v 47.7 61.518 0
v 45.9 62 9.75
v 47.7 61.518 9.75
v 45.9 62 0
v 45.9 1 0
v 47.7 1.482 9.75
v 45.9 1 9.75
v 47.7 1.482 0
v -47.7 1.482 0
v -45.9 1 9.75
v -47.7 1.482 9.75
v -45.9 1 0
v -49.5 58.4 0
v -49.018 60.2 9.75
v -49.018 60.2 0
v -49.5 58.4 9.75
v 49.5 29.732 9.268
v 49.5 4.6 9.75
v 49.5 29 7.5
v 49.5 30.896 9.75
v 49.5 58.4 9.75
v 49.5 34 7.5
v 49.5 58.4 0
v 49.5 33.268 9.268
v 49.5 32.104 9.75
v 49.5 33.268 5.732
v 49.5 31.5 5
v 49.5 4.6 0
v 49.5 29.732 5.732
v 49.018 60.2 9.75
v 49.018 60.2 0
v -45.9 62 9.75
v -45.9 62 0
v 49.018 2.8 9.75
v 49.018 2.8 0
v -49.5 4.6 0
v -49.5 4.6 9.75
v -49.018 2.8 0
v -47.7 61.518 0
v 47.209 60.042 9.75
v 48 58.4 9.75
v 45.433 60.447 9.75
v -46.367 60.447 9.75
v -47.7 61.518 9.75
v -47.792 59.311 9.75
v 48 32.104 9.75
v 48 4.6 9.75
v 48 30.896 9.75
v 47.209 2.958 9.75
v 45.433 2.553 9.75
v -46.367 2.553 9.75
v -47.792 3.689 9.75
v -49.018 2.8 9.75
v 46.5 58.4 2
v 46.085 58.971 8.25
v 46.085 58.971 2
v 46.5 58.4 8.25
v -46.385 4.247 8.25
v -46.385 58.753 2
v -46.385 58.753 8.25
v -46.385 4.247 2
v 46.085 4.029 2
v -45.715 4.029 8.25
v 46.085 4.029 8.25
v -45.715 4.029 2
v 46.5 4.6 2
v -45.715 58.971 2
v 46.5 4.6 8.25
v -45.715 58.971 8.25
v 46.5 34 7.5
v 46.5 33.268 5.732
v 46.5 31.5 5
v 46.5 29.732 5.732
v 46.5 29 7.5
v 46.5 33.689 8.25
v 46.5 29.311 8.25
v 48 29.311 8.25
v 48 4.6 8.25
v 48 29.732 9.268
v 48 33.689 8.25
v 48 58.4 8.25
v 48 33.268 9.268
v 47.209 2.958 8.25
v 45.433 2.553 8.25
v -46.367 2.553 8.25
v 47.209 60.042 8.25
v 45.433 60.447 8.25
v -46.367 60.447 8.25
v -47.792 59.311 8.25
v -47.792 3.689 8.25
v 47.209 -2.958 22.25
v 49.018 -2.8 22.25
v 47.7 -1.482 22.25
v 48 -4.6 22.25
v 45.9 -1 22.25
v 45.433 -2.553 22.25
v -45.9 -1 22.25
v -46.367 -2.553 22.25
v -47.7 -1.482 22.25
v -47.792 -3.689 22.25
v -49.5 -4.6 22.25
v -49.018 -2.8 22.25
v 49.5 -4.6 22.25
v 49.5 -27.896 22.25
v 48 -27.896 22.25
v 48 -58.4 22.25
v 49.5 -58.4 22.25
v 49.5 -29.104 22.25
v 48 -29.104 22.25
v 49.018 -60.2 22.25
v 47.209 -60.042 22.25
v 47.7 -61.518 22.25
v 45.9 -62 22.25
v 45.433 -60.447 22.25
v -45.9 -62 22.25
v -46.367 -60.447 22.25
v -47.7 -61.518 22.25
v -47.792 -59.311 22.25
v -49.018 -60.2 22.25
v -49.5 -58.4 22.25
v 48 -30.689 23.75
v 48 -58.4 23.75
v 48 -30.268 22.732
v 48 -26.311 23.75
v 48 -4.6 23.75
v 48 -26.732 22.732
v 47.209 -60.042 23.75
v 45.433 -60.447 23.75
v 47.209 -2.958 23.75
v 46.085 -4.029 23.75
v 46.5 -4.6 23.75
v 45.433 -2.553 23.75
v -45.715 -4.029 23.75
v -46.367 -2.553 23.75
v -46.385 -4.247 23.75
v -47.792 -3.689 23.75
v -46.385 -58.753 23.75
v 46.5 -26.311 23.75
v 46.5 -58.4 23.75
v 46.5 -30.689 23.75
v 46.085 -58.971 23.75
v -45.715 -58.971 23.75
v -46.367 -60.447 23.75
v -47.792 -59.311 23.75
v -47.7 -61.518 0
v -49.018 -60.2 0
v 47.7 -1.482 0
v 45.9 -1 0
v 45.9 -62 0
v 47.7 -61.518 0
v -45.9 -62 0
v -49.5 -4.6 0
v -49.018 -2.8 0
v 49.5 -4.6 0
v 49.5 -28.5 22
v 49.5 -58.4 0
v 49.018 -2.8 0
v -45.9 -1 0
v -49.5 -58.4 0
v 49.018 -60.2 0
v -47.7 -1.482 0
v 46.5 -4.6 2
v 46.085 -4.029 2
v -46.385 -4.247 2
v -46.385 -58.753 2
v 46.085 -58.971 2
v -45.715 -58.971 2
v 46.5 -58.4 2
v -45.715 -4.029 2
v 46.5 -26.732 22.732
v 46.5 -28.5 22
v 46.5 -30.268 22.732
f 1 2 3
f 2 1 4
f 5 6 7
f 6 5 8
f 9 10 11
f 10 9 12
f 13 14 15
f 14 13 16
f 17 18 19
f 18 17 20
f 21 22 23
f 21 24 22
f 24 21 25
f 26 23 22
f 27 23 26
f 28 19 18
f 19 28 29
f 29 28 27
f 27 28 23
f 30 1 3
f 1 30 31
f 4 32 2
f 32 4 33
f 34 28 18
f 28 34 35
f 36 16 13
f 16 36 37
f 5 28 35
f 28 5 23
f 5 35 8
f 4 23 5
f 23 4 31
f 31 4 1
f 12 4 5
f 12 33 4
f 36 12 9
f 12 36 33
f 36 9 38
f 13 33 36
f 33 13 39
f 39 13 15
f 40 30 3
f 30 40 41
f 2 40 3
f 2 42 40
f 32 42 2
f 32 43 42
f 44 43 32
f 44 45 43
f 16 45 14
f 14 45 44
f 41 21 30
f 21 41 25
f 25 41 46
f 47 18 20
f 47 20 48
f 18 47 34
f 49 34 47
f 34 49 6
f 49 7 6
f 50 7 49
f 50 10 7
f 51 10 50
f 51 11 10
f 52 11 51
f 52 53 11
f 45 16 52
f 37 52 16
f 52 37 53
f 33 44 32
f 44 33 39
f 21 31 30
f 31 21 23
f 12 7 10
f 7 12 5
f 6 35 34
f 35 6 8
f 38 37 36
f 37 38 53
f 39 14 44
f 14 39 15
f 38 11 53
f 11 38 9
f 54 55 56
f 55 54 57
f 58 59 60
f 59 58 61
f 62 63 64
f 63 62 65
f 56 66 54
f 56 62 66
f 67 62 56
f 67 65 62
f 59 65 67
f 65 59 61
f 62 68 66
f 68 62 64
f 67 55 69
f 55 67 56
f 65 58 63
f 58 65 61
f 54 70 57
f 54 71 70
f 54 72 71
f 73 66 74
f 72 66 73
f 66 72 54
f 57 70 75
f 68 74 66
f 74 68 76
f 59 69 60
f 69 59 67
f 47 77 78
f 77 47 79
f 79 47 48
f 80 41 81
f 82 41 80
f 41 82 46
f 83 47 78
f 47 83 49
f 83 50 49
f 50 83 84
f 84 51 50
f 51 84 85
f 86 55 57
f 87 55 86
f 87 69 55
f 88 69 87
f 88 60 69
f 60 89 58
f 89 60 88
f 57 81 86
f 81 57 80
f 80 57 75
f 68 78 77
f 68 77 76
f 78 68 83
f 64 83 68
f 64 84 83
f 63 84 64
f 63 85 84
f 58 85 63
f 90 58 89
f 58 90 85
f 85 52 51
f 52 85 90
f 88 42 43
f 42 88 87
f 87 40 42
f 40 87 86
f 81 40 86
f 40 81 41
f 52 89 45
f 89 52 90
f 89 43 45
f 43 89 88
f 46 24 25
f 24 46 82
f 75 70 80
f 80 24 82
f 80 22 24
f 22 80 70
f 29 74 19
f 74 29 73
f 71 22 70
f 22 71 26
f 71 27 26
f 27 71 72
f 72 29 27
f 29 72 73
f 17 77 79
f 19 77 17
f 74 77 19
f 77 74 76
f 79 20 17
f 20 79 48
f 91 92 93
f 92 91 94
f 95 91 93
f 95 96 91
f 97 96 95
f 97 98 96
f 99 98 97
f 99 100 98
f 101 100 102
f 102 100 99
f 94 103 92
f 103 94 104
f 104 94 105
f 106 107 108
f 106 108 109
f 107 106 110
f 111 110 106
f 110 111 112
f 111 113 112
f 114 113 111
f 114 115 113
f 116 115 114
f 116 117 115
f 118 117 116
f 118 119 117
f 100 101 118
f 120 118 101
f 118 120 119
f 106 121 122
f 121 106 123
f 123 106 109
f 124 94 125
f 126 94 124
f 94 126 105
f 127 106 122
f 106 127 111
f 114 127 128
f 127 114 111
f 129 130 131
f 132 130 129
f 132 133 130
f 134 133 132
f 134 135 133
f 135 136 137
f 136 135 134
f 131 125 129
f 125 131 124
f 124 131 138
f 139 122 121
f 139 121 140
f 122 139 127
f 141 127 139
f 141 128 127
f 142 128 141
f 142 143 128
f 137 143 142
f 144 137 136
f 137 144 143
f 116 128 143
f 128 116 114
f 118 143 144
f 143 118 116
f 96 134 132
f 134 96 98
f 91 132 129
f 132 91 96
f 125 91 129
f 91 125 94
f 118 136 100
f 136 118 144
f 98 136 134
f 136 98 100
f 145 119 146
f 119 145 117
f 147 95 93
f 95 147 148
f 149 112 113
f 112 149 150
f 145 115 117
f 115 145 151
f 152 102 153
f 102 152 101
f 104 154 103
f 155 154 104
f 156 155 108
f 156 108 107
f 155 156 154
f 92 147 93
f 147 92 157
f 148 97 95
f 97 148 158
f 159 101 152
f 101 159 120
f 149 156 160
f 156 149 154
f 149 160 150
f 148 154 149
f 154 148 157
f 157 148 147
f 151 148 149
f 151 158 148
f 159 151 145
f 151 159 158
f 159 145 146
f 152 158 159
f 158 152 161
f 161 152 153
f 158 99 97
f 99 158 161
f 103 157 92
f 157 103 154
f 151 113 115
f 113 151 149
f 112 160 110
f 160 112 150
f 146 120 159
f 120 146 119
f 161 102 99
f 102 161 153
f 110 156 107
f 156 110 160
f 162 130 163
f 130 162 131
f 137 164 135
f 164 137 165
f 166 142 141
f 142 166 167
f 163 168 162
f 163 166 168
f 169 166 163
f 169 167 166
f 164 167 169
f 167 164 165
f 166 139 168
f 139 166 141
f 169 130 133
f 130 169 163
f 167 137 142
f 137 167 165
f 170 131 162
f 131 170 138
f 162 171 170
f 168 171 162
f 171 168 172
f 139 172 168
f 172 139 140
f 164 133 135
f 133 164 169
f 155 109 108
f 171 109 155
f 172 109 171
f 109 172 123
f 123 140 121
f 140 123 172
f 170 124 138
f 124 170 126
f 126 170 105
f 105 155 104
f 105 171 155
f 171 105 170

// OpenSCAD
/*!
@brief Generic Electronic Device packaging for Tyndall
@details This OpenSCAD script will generate a 2 part fit together packaging.
This starts by making a pair of hollow rounded cuboids by differencing a slightly smaller one from a slightly larger one
then it will also remove another small amount of material to make a lip
one of the objects will have an internal lip the other one will have an external lip
you will be able to specify fit type
It can also create simple square or cylindrical cutouts on any face of the top or bottom half
4 cylindrical support posts can also be added on the bottom or top half to help position a PCB or similar device
all these features can be controlled from the variables section

@author Mark Gaffney
@version 1.6
@date 2012-05-29

@todo
enable for measurements from corners or centres of faces etc
add "fit factor" for cutouts
add option for connecting struts between top and bottom in side by side mode
re-incorporate some advanced features from v1.5

@warning
@note
Changes from previous versions:

v1.6
 - 	Incorporates improvements from brians physiological health board case v2.6
 - - 	better support for adding parts, changing features and changing layout using control variables
 - - 	Can select how tall the 2 halves are relative to each other
 - - 	Added method to choose whether to have fully cut or covered cutouts
 - -	Added optional mouse-ears
 - 	more logical method for creating circular and square cutouts in preparation for array based system
 - 	simplified method for controlling lip tolerance
 - 	abandoned some features from v1.5 such as profiled lips in quest for simplicity
 - 	method optionally adding posts to top and bottom
 - 	variables for controlling support posts on top and bottom separately
 - 	pasted contents of mouse ears and rounded cuboid as modules rather than accessing them as external files

v1.5
	adjusted a few values after receiving SLA proto-types
	increased height of posts
	added support structures on top side
	decrease diameter of support structures on top side slightly to allow for brackets at end of 40 way
	decreased z clearance
	removed includes/uses needed for WIMU packaging
	
v1.4
	added angled lip (Cube_cone_cylinder_minkowski sum) for better mating of top and bottom parts when made via SLA/SLS etc
	new more simplistic rounded cuboid module
	moved around the cutout for the uUSB so that there wasn't such a thin peice of plastic above it
changed post type to nub as SLA should be able to handle the resolution
	added easier control of orientation of parts relative to each other using single variable side_by_side
	added axis labels to most faces and tyndall logo to bottom
	added new fit type for super accurate manufacturing techniques such as SLA
v1.3
	Fix cutout positions for TOP SQUARE East and BOTTOM SQUARE West side
	Fix position of base of support posts on bottom half
v1.2
	Fixed Inner and Outer Lip Clearance implementation
	Added ability to generate support posts on bottom half of either nub or screw hole type
v1.1
	???This version was lost in a computer crash. GRRRR!
	???It implemented the ability to choose the reference point for measurements for each side
	???Let this be a lesson!
	???Back your stuff up regularly and on separate devices!
v 1.0
	Ensure pcb_clearance and fit clearance is taken into account
	fit type values changed
		force_fit from 0.4 to 0.2
		hold_fit from 0.6 to 0.3
		slide_fit from 0.8 to 0.4
		free_fit from 1to 0.5
	add cylinder & square holes to all faces
	allowed to stack or see side by side
	replace 0.1s with a_bit
	check holes on top & bottom sides meet properly
*/

//*********includes********

//use <mouse_ears_test.scad>;//mouse_ears (total_x, total_y, 2*z_resolution, mouse_ear_diameter);
//use <rounded_cuboid_v2.5.scad>;//rounded_cuboid_2_5(tot_l, tot_b, tot_h, tot_r, tot_s,center=true/false,use_sphere,top_n_bottom); hollow_rounded_cuboid_2_5(tot_l, tot_b, tot_h, tot_r, tot_s, wall_t,center=true/false,use_sphere,top_n_bottom);

//*************Control*Variables****************

has_mouse_ears=0;
has_bottom=1;
has_top=1;
has_posts=0;
posts_on_top=1;
posts_on_bottom=0;
is_side_by_side=1;
has_device=0;// for optionally showing an imported model of the internal device, not used here
device_on_top=0;
//has_switch=0; //for optionally showing an imported part, not used here
//simple_lip=0;//for choosing if a simple (1) or locking type lip (0) is used between the 2 halves, not used yet

//***********Pre*Defined*Variables**************

z_resolution=0.32;//this is how thick your printed layers are
xy_resolution=0.5;//how thick is an extruder filament in XY plane

//clearances for the interlocking lips on 3d printed parts, these values will depend on the printer it is made on. Users should NOT change these
super_fit=0.0;//
force_fit=0.2; //!@param force_fit, this is the separation between surfaces that will give a tight fit
hold_fit=0.3; //this is the separation between surfaces that will give a fit that will hold itself together but be easy to remove
slide_fit=0.4; //this is the separation between surfaces that will give a free moving fit without much wobble
free_fit=0.5; //this is the separation between surfaces that will give a free moving & loose but easy to assemble fit

//fudge
a_bit=0.1; //This is used to move items, oversize or undersize them by small amount to maintain manifoldness of the generated 3d shape, this should be on the order of 10% of the smallest dimension you will plan to use 

//**************User*Variables*****************

//internal dimensions
int_l_holder=90;//max length of the item to be held internally
int_b_holder=52;//max breadth of the item to be held internally
int_h_holder=25;//max height of the item to be held internally
int_r_holder=0.5;//radius of the corners of the device to be held internally
int_tol_holder=1.5;//distance between internal walls and edges of the item to be held internally, this allows for devices that may not be accurately measured or made and should generally be >0.5mm
int_r_tol_holder=0.1;//tolerance for the internal corners
curve_f_holder=3;//how many facets do the curved corners have?
wall_t_holder=3;//how thick are the vertical walls?
base_t_holder=2;//how thick is the base?

//lip dimensions
lip_h=1.5;//how tall are the interlocking lips?
lip_fit=super_fit;//what is the tolerance for the fit between the two sets of interlocking lips?
lip_t= wall_t_holder/2-lip_fit;//automatically calculated lip thickness (width)

//external dimensions
ext_l_holder=int_l_holder+2*(int_tol_holder+wall_t_holder);
ext_b_holder=int_b_holder+2*(int_tol_holder+wall_t_holder);
ext_h_holder=int_h_holder+2*int_tol_holder+2*base_t_holder;
ext_r_holder=int_r_holder+int_r_tol_holder+wall_t_holder;
bottom_top_int_h_ratio=0.22;//how tall is the internal void of the bottom section relative to the top section (0.5 would give 2 halves of equal height)
bottom_h=(int_h_holder*bottom_top_int_h_ratio)+int_tol_holder+base_t_holder+lip_h/2;//how tall is the bottom half
top_h=ext_h_holder-bottom_h+lip_h;//how tall is the top half

//features
mouse_ear_diameter=12;
mouse_ear_thickness=2*z_resolution;
side_side_separation=2;//how far apart the two halves are if generated together


//cutout variables
cutout_wall_thickness=0*xy_resolution; //how thick is the plastic left in the cutouts on the sides? set to 0 if you do not want any plastic left in these cutouts
cutout_base_thickness=2*z_resolution;//how thick is the plastic left in the cutouts on the bottom or top? set to 0 if you do not want any plastic left in these cutouts

north_cutout=1;//if 1 cutout on this side else none
n_cutout_c=1;//if 1 gives circle just using the _r value and ignoring the others, else gives rounded square
n_cutout_l=10;//length/tallness of the cutout
n_cutout_b=22;//breadth of the cutout
n_cutout_h=wall_t_holder+2*a_bit;//basically wall thickness plus a bit
n_cutout_r=2.5;//radius of the corners of the cutout
n_cutout_e=4;//height of the bottom of the cutout above the bottom of the holder 
n_cutout_t=0;//translation along the face -left +right as you look at the face from outside

south_cutout=0;//if 1 cutout on this side else none
s_cutout_c=0;//if 1 gives circle just using the _r value and ignoring the others, else gives rounded square
s_cutout_l=8;//length/tallness of the cutout
s_cutout_b=11;//breadth of the cutout
s_cutout_h=wall_t_holder+2*a_bit;//basically wall thickness plus a bit
s_cutout_r=2;//radius of the corners of the cutout
s_cutout_e=s_cutout_l+(-int_h_holder -lip_h)/2-int_tol_holder -1;//height of the bottom of the cutout above the bottom of the holder 
s_cutout_t=-1;//translation along the face -left +right

south_cutout2=0;//if 1 cutout on this side else none
s_cutout_c2=0;//if 1 gives circle just using the _r value and ignoring the others, else gives rounded square
s_cutout_l2=7;//length/tallness of the cutout
s_cutout_b2=13;//breadth of the cutout
s_cutout_h2=wall_t_holder+2*a_bit;//basically wall thickness plus a bit
s_cutout_r2=1;//radius of the corners of the cutout
s_cutout_e2=0;//height of the bottom of the cutout above the bottom of the holder 
s_cutout_t2=0;//translation along the face -left +right

east_cutout=0;//ECG cutout
e_cutout_c=0;//if 1 gives circle just using the _r value and ignoring the others, else gives rounded square
e_cutout_l=9;//length/tallness of the cutout
e_cutout_b=13;//breadth of the cutout
e_cutout_h=wall_t_holder+2*a_bit;//basically wall thickness plus a bit
e_cutout_r=3;//radius of the corners of the cutout
e_cutout_e=2;//e_cutout_l+(-int_h_holder -lip_h)/2-int_tol_holder;//height of the bottom of the cutout above the bottom of the holder 
e_cutout_t=0;//(int_l_holder/2)-46.5-4;//translation along the face -left +right

west_cutout=0;//switch cutout
w_cutout_c=1;//if 1 gives circle just using the _r value and ignoring the others, else gives rounded square
w_cutout_l=10;//length/tallness of the cutout
w_cutout_b=10;//breadth of the cutout
w_cutout_h=wall_t_holder+2*a_bit;//basically wall thickness plus a bit
w_cutout_r=2;//radius of the corners of the cutout
w_cutout_e=5;//w_cutout_l+(-int_h_holder -lip_h)/2-int_tol_holder;//height of the bottom of the cutout above the bottom of the holder 
w_cutout_t=10;//translation along the face -left +right

top_cutout=0;//top cutout
t_cutout_c=1;//if 1 gives circle just using the _r value and ignoring the others, else gives rounded square
t_cutout_l=25;//length/tallness of the cutout
t_cutout_b=20;//breadth of the cutout
t_cutout_h=base_t_holder+2*a_bit;//basically wall thickness plus a bit
t_cutout_r=7;//radius of the corners of the cutout
t_cutout_x=20;//height of the bottom of the cutout above the bottom of the holder 
t_cutout_y=15;//translation along the face -left +right

bottom_cutout=0;//bottom cutout
b_cutout_c=1;//if 1 gives circle just using the _r value and ignoring the others, else gives rounded square
b_cutout_l=25;//length/tallness of the cutout
b_cutout_b=20;//breadth of the cutout
b_cutout_h=base_t_holder+2*a_bit;//basically wall thickness plus a bit
b_cutout_r=7;//radius of the corners of the cutout
b_cutout_x=20;//position of the cutout
b_cutout_y=15;//position of the cutout


//PCB Support Posts (if enabled, four cylindrical posts will be made with their centres on the corners of a user defined rectangle offset from the centroid by a user controlled amount
//cylindrical_posts (post_l,post_b,post_h_outer,post_r_outer,post_h_inner,post_r_inner,post_x_offset,post_y_offset,post_type)
//bottom
	b_post_outer_r=3;	//external radius of the post
	b_post_inner_r=1;	//radius of the nub (or screw hole)
	b_post_outer_h=4.3;	//height of the post
	b_post_inner_h=1.7;	//height (or depth) of the nub (or screw hole)
	b_post_type=1;	//if 1 gives a nub topped post, if 0 gives a screw hole post
	b_post_x_sep=60;	//X distance between post centres
	b_post_y_sep=40;	//Y distance between post centres
	b_post_x_offset=8;	//X distance between 4 post centroid and bottom face centroid
	b_post_y_offset=5;	//Y distance between 4 post centroid and bottom face centroid
//top
	t_post_outer_r=3;	//external radius of the post
	t_post_inner_r=1;	//radius of the nub (or screw hole)
	t_post_outer_h=6;	//height of the post
	t_post_inner_h=1.7;	//height (or depth) of the nub (or screw hole)
	t_post_type=0;	//if 1 gives a nub topped post, if 0 gives a screw hole post
	t_post_x_sep=60;	//X distance between post centres
	t_post_y_sep=30;	//Y distance between post centres
	t_post_x_offset=10;	//X distance between 4 post centroid and bottom face centroid
	t_post_y_offset=1;	//Y distance between 4 post centroid and bottom face centroid


//*********************Calls*******************

//holder calls
if (has_bottom==1 && has_mouse_ears==1){
	translate(v=[0,is_side_by_side*(ext_b_holder+side_side_separation)/2,0]) mouse_ears (ext_l_holder, ext_b_holder, mouse_ear_thickness, mouse_ear_diameter);
}


if (has_bottom==1){
	translate(v=[0,is_side_by_side*(ext_b_holder+side_side_separation)/2,0]) {

	//	if (has_switch==1){//an accessory model can be loaded here
	//		translate(v=[-18.8,ext_b_holder/2-wall_t_holder-a_bit-8,base_t_holder+0.5]) color("DarkSlateGrey") rotate(a=[90,0,180]) import("2012_05_14-Base_station_switch-v0.2-Brians-v2-6.stl");
	//	}
	
	//	if(has_device==1 && device_on_top==0){//a device resembling the electronics can be inserted here
	//		translate(v=[battery_cable_length-int_l_holder/2,-int_b_holder/2,base_t_holder+int_tol_holder])color([0,1,1,1])phys_health_layer(1, 1, 1, 1);
	//	}
	
		if(has_posts==1 && posts_on_bottom==1){
			translate(v=[0,0,base_t_holder-a_bit]) cylindrical_posts (b_post_x_sep,b_post_y_sep,b_post_outer_h+b_post_inner_h,b_post_outer_r,b_post_inner_h,b_post_inner_r,b_post_x_offset,b_post_y_offset,b_post_type); //cylindrical_posts (post_l,post_b,post_h_outer,post_r_outer,post_h_inner,post_r_inner,post_x_offset,post_y_offset,post_type)
		}

		difference(){//make internal hollow cuboid
			translate(v=[0,0,0]) rounded_cuboid_2_5(ext_l_holder,ext_b_holder,int_h_holder*bottom_top_int_h_ratio+int_tol_holder+base_t_holder+lip_h/2,ext_r_holder,curve_f_holder,true);
			translate(v=[0,0,base_t_holder]) rounded_cuboid_2_5(ext_l_holder-2*wall_t_holder,ext_b_holder-2*wall_t_holder,ext_h_holder,ext_r_holder-wall_t_holder,curve_f_holder,true);
			translate(v=[0,0,int_h_holder*bottom_top_int_h_ratio+int_tol_holder+base_t_holder-lip_h/2]) rounded_cuboid_2_5(ext_l_holder-2*lip_t,ext_b_holder-2*lip_t,ext_h_holder,ext_r_holder-wall_t_holder/2,curve_f_holder,true);//cutout to make the lips
			translate(v=[0,0,ext_h_holder/2]){
				if(north_cutout==1){
					if(n_cutout_c==1){
						#translate(v=[-cutout_wall_thickness+ext_l_holder/2,n_cutout_t,n_cutout_e-int_h_holder/2]) rotate(a=[0,-90,0]) cylinder (r=n_cutout_r,h=n_cutout_h,center=false); //circular cutout on "North" end	
					}else{
						#translate(v=[-cutout_wall_thickness+ext_l_holder/2,n_cutout_t,n_cutout_e-int_h_holder/2]) rotate(a=[0,-90,0]) rounded_cuboid_2_5 (n_cutout_l,n_cutout_b,n_cutout_h,n_cutout_r,curve_f_holder,center=true); //square cutout on "North" end	
					}
				}if(south_cutout==1){
					if(s_cutout_c==1){
						translate(v=[cutout_wall_thickness-a_bit-ext_l_holder/2,-s_cutout_t,s_cutout_e-int_h_holder/2]) rotate(a=[0,90,0]) cylinder (r=s_cutout_r,h=s_cutout_h,center=false); //circular cutout on "South" end	
					}else{
						#translate(v=[cutout_wall_thickness-a_bit-ext_l_holder/2,-s_cutout_t,s_cutout_e+base_t_holder-s_cutout_l/2]) rotate(a=[0,90,0])rounded_cuboid_2_5 (s_cutout_l,s_cutout_b,s_cutout_h,s_cutout_r,curve_f_holder,center=true); //mUSB cutout on "south" end
					}
				}if(south_cutout2==1){
					if(s_cutout_c2==1){
						#	translate(v=[cutout_wall_thickness-a_bit-ext_l_holder/2,-s_cutout_t2,s_cutout_e2-int_h_holder/2]) rotate(a=[0,90,0]) cylinder (r=s_cutout_r2,h=s_cutout_h2,center=false); //circular cutout on "South" end	
					}else{
						translate(v=[cutout_wall_thickness-a_bit-ext_l_holder/2,-s_cutout_t2,s_cutout_e2+base_t_holder-s_cutout_l2/2]) rotate(a=[0,90,0])rounded_cuboid_2_5 (s_cutout_l2,s_cutout_b2,s_cutout_h2,s_cutout_r2,curve_f_holder,center=true); //uSD cutout on "south" end
					}
				}if(east_cutout==1){
					if(e_cutout_c==1){
						#rotate(a=[0,0,90]) translate(v=[cutout_wall_thickness-a_bit-ext_b_holder/2,-e_cutout_t,e_cutout_e-int_h_holder/2]) rotate(a=[0,90,0]) cylinder (r=e_cutout_r,h=e_cutout_h,center=false); //circular cutout on "East" end	
					}else{
						rotate(a=[0,0,90])translate(v=[cutout_wall_thickness-a_bit-ext_b_holder/2,-e_cutout_t,e_cutout_e+base_t_holder-e_cutout_l/2]) rotate(a=[0,90,0])rounded_cuboid_2_5 (e_cutout_l,e_cutout_b,e_cutout_h,e_cutout_r,curve_f_holder,center=true); //ECG cutout on "East" end
					}
				}if(west_cutout==1){
					if(w_cutout_c==1){
						#rotate(a=[0,0,-90]) translate(v=[cutout_wall_thickness-a_bit-ext_b_holder/2,-w_cutout_t,w_cutout_e-int_h_holder/2]) rotate(a=[0,90,0]) cylinder (r=w_cutout_r,h=w_cutout_h,center=false); //circular cutout on "West" end	
					}else{
						rotate(a=[0,0,-90])translate(v=[cutout_wall_thickness-a_bit-ext_b_holder/2,-w_cutout_t,w_cutout_e+base_t_holder-w_cutout_l/2]) rotate(a=[0,90,0])rounded_cuboid_2_5 (w_cutout_l,w_cutout_b,w_cutout_h,w_cutout_r,curve_f_holder,center=true); //switch cutout on "West" end
					}
				}if(bottom_cutout==1){
					if(b_cutout_c==1){
						#translate(v=[b_cutout_x,b_cutout_y,-ext_h_holder/2+cutout_base_thickness]) cylinder (r=b_cutout_r,h=b_cutout_h,center=false); //circular cutout on "Bottom" end	
					}else{
					#	translate(v=[b_cutout_x,b_cutout_y,-ext_h_holder/2+cutout_base_thickness]) rotate(a=[0,0,0])rounded_cuboid_2_5 (b_cutout_l,b_cutout_b,b_cutout_h,b_cutout_r,curve_f_holder,center=true); //switch cutout on "Bottom" end
					}
				}
			}
		}
	}
}

if (has_top==1){
	rotate(a=[0,(is_side_by_side-1)*180,(is_side_by_side-1)*180]) translate(v=[0,-is_side_by_side*(ext_b_holder+side_side_separation)/2,-(abs(is_side_by_side-1))*ext_h_holder  +(abs(has_top-1))*ext_h_holder ]){

	if(has_device==1 && device_on_top==1){	translate(v=[battery_cable_length-int_l_holder/2,int_b_holder/2,cube_height_top+int_tol_holder+a_bit])color([0,1,1,1])rotate(a=[180,0,]) phys_health_layer(1, 1, 1, 1);
	}

		if (has_mouse_ears==1 && is_side_by_side==1){
			mouse_ears (ext_l_holder, ext_b_holder, mouse_ear_thickness, mouse_ear_diameter);
		}

		if(has_posts==1 && posts_on_top==1){
			translate(v=[0,0,base_t_holder-a_bit]) cylindrical_posts (t_post_x_sep,t_post_y_sep,t_post_outer_h+t_post_inner_h,t_post_outer_r,t_post_inner_h,t_post_inner_r,t_post_x_offset,t_post_y_offset,t_post_type); //cylindrical_posts (post_l,post_b,post_h_outer,post_r_outer,post_h_inner,post_r_inner,post_x_offset,post_y_offset,post_type)
		}


		difference(){//make internal hollow cuboid
			translate(v=[0,0,0]) rounded_cuboid_2_5(ext_l_holder,ext_b_holder,top_h,ext_r_holder,curve_f_holder,true);
			translate(v=[0,0,base_t_holder]) rounded_cuboid_2_5(ext_l_holder-2*wall_t_holder,ext_b_holder-2*wall_t_holder,ext_h_holder,ext_r_holder-wall_t_holder,curve_f_holder,true);
			difference(){
				translate(v=[0,0,top_h-lip_h+100/2]) cube(size=[ext_l_holder+2,ext_b_holder+2,100],center=true);
				translate(v=[0,0,0]) rounded_cuboid_2_5(ext_l_holder-2*wall_t_holder+2*lip_t,ext_b_holder-2*wall_t_holder+2*lip_t,top_h,ext_r_holder-wall_t_holder/2,curve_f_holder,true);//lips
			}
			translate(v=[0,0,ext_h_holder/2]) rotate(a=[180,0,0]){
				 if(north_cutout==1){
					if(n_cutout_c==1){
					#	translate(v=[+cutout_wall_thickness+ext_l_holder/2,n_cutout_t-wall_t_holder,n_cutout_e-int_h_holder/2]) rotate(a=[0,-90,0]) cylinder (r=n_cutout_r,h=n_cutout_h,center=false); //circular cutout on "North" end	
					}else{
					#	translate(v=[+cutout_wall_thickness+ext_l_holder/2-wall_t_holder,n_cutout_t,n_cutout_e-int_h_holder/2]) rotate(a=[0,90,0])rounded_cuboid_2_5 (n_cutout_l,n_cutout_b,n_cutout_h,n_cutout_r,curve_f_holder,center=true); //uUSB cutout on "North" end
					}
				}if(south_cutout==1){
					if(s_cutout_c==1){
					#	rotate(a=[0,0,180]) translate(v=[+cutout_wall_thickness+ext_l_holder/2,s_cutout_t,s_cutout_e-int_h_holder/2]) rotate(a=[0,-90,0]) cylinder (r=s_cutout_r,h=s_cutout_h,center=false); //circular cutout on "South" end	
					}else{
			 	#		translate(v=[-ext_l_holder/2+wall_t_holder-cutout_wall_thickness-wall_t_holder,-s_cutout_t,s_cutout_e+base_t_holder-s_cutout_l/2]) rotate(a=[0,90,0])rounded_cuboid_2_5 (s_cutout_l,s_cutout_b,s_cutout_h,s_cutout_r,curve_f_holder,center=true); //uUSB cutout on "south" end
					}
				}if(south_cutout2==1){
					if(s_cutout_c2==1){
					#	rotate(a=[0,0,180]) translate(v=[+cutout_wall_thickness+ext_l_holder/2,s_cutout_t2,s_cutout_e2-int_h_holder/2]) rotate(a=[0,-90,0]) cylinder (r=s_cutout_r2,h=s_cutout_h2,center=false); //circular cutout on "South" end	
					}else{
					#	translate(v=[-ext_l_holder/2+wall_t_holder-cutout_wall_thickness-wall_t_holder,-s_cutout_t2,s_cutout_e2+base_t_holder-s_cutout_l2/2]) rotate(a=[0,90,0])rounded_cuboid_2_5 (s_cutout_l2,s_cutout_b2,s_cutout_h2,s_cutout_r2,curve_f_holder,center=true); //uSD cutout on "south" end
					}
				}if(east_cutout==1){
					if(e_cutout_c==1){
					#	rotate(a=[0,0,-90]) translate(v=[+cutout_wall_thickness+ext_b_holder/2,e_cutout_t,e_cutout_e-int_h_holder/2]) rotate(a=[0,-90,0]) cylinder (r=e_cutout_r,h=e_cutout_h,center=false); //circular cutout on "East" end	
					}else{
					#	rotate(a=[0,0,90])translate(v=[-ext_b_holder/2+wall_t_holder-cutout_wall_thickness,-e_cutout_t,e_cutout_e+base_t_holder-e_cutout_l/2]) rotate(a=[0,90,180])rounded_cuboid_2_5 (e_cutout_l,e_cutout_b,e_cutout_h,e_cutout_r,curve_f_holder,center=true); //uUSB cutout on "East" end
					}
				}if(west_cutout==1){
					if(w_cutout_c==1){
					#	rotate(a=[0,0,90]) translate(v=[+cutout_wall_thickness+ext_b_holder/2,w_cutout_t,w_cutout_e-int_h_holder/2]) rotate(a=[0,-90,0]) cylinder (r=w_cutout_r,h=w_cutout_h,center=false); //circular cutout on "West" end	
					}else{
						#rotate(a=[0,0,-90])translate(v=[-ext_b_holder/2+wall_t_holder-cutout_wall_thickness,-w_cutout_t,w_cutout_e+base_t_holder-w_cutout_l/2]) rotate(a=[0,90,180])rounded_cuboid_2_5 (w_cutout_l,w_cutout_b,w_cutout_h,w_cutout_r,curve_f_holder,center=true); //uUSB cutout on "West" end
					}
				}if(top_cutout==1){
					if(t_cutout_c==1){
						#mirror (v=[0,0,1]) translate(v=[t_cutout_x,t_cutout_y,-ext_h_holder/2+cutout_base_thickness]) cylinder (r=t_cutout_r,h=t_cutout_h,center=false); //circular cutout on "Top" end	
					}else{
						#rotate(a=[0,0,0])translate(v=[t_cutout_x,t_cutout_y,ext_h_holder/2-cutout_base_thickness]) rotate(a=[0,180,0])rounded_cuboid_2_5 (t_cutout_l,t_cutout_b,t_cutout_h,t_cutout_r,curve_f_holder,center=true); //uUSB cutout on "Top" end
					}
				}
			}
		}
	}
}



//*********************Modules*******************

module cylindrical_posts (post_l,post_b,post_h_outer,post_r_outer,post_h_inner,post_r_inner,post_x_offset,post_y_offset,post_type){
	//make 4 cylindrical support posts
	//place cylinders post_h_outer tall with radius post_r_outer at each vertex of rectangle defined by post_l & post_b
	//add (1) or subtract (0) depending on post_type cylinders post_h_inner tall with radius post_r_inner at (1) or from (0) cylinders
	//translate this shape by post_x_offset post_y_offset
	//I might need to add a_bit to this in various places for manifoldness

	for ( holder_x = [-(post_l/2), (post_l/2)]) {
		for ( holder_y = [-(post_b/2), (post_b/2)]) {
			if (post_type==0){ //a screw hole type post
				difference(){
					translate (v=[holder_x+post_x_offset, holder_y+post_y_offset,0]) cylinder(h = post_h_outer+a_bit, r = post_r_outer, center=false);//main body of post
					translate (v=[holder_x+post_x_offset, holder_y+post_y_offset, (post_h_outer-post_h_inner)+a_bit]) cylinder(h = post_h_inner+a_bit, r = post_r_inner, center=false);//screw hole of post
				}
			}

			else{//(post_type==1){ //a nub type post
				union(){
					translate (v=[holder_x+post_x_offset, holder_y+post_y_offset,0]) cylinder(h = post_h_outer+a_bit, r = post_r_outer, center=false);//main body of post
					translate (v=[holder_x+post_x_offset, holder_y+post_y_offset, post_h_outer]) cylinder(h = post_h_inner, r = post_r_inner, center=false);//nub of post
				}
			}
		}
	}
}

module cube_cone_cylinder_minkowski(size_x,size_y,size_z,size_r, size_z_flat, num_sides,overlap,center_loc){ 
	if(center_loc==1){
		translate(v=[(size_r+(overlap/2))-size_x/2,(size_r+(overlap/2))-size_y/2,-size_z/2]){
			minkowski(){
				cube([size_x-2*size_r,size_y-2*size_r,(size_z_flat)/2]);
				union(){
					cylinder(r1=size_r+(overlap/2),r2=size_r-(overlap/2),h=size_z-size_z_flat, center=false, $fn=num_sides*4);
					cylinder(r=size_r-(overlap/2),h=size_z-(size_z_flat/2), center=false, $fn=num_sides*4);
				}
			}
		}
	}if(center_loc==0){
		translate(v=[size_r+(overlap/2),size_r+(overlap/2),0]){
			minkowski(){
				cube([size_x-2*size_r,size_y-2*size_r,(size_z_flat)/2]);
				union(){
					cylinder(r1=size_r+(overlap/2),r2=size_r-(overlap/2),h=size_z-size_z_flat, center=false, $fn=num_sides*4);
					cylinder(r=size_r-(overlap/2),h=size_z-(size_z_flat/2), center=false, $fn=num_sides*4);
				}
			}
		}
	}if(center_loc==2){
		translate(v=[size_r,size_r,0]){
			minkowski(){
				cube([size_x-2*size_r,size_y-2*size_r,(size_z_flat)/2]);
				union(){
					cylinder(r1=size_r+(overlap/2),r2=size_r-(overlap/2),h=size_z-size_z_flat, center=false, $fn=num_sides*4);
					cylinder(r=size_r-(overlap/2),h=size_z-(size_z_flat/2), center=false, $fn=num_sides*4);
				}
			}
		}
	}
}

module basic_shape(ext_l, ext_b, ext_h, ext_r, curve_f, wall_t, lip_t, lip_h,lip_p){
	difference(){
		 //The Biggest of the rounded cuboid, the external dimensions
		rounded_cuboid(ext_l, ext_b, ext_h, ext_r, curve_f);

		//Smaller of the two rounded cuboids removed to make the inside hollow, the internal dimensions
		translate (v = [0, 0, wall_t+0.1]) rounded_cuboid(ext_l-wall_t*2, ext_b-wall_t*2, ext_h+0.2, ext_r-wall_t, curve_f);
		if (lip_p==0){//A flat rounded cuboid removed to make the lip for a click fit type box
			if(simple_lip==1) translate (v = [0, 0, ext_h/2-lip_h/2-0.1])  rounded_cuboid(ext_l-lip_t*2, ext_b-lip_t*2, lip_h+0.2, ext_r-lip_t, curve_f);
			if(simple_lip==0) translate (v = [0, 0, ext_h/2-lip_h/2-0.1]) cube_cone_cylinder_minkowski(ext_l-lip_t*2,ext_b-lip_t*2,lip_h+0.3,ext_r-lip_t, (lip_h+0.2)/2, curve_f,0.2,1);

		}
		if (lip_p==1){
			//A flat rounded cuboid removed to make the lip for a click fit type box
			translate (v = [0, 0, ext_h/2-lip_h/2+0.1]) 

			difference(){
				cube(size = [ext_l+0.2, ext_b+0.2, lip_h], center=true);
				if(simple_lip==1) rounded_cuboid(ext_l-lip_t*2, ext_b-lip_t*2, lip_h+0.2, ext_r-lip_t, curve_f);
				if(simple_lip==0) mirror(v=[0,0,1]) cube_cone_cylinder_minkowski(ext_l-lip_t*2,ext_b-lip_t*2,lip_h+0.2,ext_r-lip_t, (lip_h+0.2)/2, curve_f,0.2,1);

			}
		}
	}
}


module hollow_rounded_cuboid_2_5(n_tot_l, n_tot_b, n_tot_h, n_tot_r, n_tot_s, n_wall_t,n_center=true){
//	$fn=n_tot_s*4;
	difference(){
		rounded_cuboid_2_5(n_tot_l, n_tot_b, n_tot_h, n_tot_r, n_tot_s,n_center);
		if(n_center==true){
			translate(v=[0,0,-0.1])rounded_cuboid_2_5(n_tot_l-2*n_wall_t, n_tot_b-2*n_wall_t, n_tot_h+2*0.1, n_tot_r-n_wall_t, n_tot_s,n_center);
		}else{
			translate(v=[n_wall_t,n_wall_t,-0.1])rounded_cuboid_2_5(n_tot_l-2*n_wall_t, n_tot_b-2*n_wall_t, n_tot_h+2*0.1, n_tot_r-n_wall_t, n_tot_s,n_center);
		}
	}
}

module rounded_cuboid_2_5(m_tot_l, m_tot_b, m_tot_h, m_tot_r, m_tot_s,m_center=true){
	//$fn=m_tot_s*4;
	if(m_center==true){
		translate(v=[m_tot_r-(m_tot_l/2),m_tot_r-(m_tot_b/2),0]){
			minkowski(){
				cube([m_tot_l-2*m_tot_r,m_tot_b-2*m_tot_r,m_tot_h/2]);
				cylinder(r=m_tot_r,h=m_tot_h/2,centre=true);
			}
		}
	}else{
		translate(v=[m_tot_r,m_tot_r,0]){
			minkowski(){
				cube([m_tot_l-2*m_tot_r,m_tot_b-2*m_tot_r,m_tot_h/2]);
				cylinder(r=m_tot_r,h=m_tot_h/2,centre=true);
			}
		}
	}
}

module mouse_ears (ear_offset_x, ear_offset_y, ear_height, ear_diameter){
	translate(v=[-ear_offset_x/2, -ear_offset_y/2,0]) cylinder(r=ear_diameter/2, h=ear_height, centre=true);
	translate(v=[-ear_offset_x/2, ear_offset_y/2,0]) cylinder(r=ear_diameter/2, h=ear_height, centre=true);
	translate(v=[ear_offset_x/2, -ear_offset_y/2, 0]) cylinder(r=ear_diameter/2, h=ear_height, centre=true);
	translate(v=[ear_offset_x/2, ear_offset_y/2,0]) cylinder(r=ear_diameter/2, h=ear_height, centre=true);
}
